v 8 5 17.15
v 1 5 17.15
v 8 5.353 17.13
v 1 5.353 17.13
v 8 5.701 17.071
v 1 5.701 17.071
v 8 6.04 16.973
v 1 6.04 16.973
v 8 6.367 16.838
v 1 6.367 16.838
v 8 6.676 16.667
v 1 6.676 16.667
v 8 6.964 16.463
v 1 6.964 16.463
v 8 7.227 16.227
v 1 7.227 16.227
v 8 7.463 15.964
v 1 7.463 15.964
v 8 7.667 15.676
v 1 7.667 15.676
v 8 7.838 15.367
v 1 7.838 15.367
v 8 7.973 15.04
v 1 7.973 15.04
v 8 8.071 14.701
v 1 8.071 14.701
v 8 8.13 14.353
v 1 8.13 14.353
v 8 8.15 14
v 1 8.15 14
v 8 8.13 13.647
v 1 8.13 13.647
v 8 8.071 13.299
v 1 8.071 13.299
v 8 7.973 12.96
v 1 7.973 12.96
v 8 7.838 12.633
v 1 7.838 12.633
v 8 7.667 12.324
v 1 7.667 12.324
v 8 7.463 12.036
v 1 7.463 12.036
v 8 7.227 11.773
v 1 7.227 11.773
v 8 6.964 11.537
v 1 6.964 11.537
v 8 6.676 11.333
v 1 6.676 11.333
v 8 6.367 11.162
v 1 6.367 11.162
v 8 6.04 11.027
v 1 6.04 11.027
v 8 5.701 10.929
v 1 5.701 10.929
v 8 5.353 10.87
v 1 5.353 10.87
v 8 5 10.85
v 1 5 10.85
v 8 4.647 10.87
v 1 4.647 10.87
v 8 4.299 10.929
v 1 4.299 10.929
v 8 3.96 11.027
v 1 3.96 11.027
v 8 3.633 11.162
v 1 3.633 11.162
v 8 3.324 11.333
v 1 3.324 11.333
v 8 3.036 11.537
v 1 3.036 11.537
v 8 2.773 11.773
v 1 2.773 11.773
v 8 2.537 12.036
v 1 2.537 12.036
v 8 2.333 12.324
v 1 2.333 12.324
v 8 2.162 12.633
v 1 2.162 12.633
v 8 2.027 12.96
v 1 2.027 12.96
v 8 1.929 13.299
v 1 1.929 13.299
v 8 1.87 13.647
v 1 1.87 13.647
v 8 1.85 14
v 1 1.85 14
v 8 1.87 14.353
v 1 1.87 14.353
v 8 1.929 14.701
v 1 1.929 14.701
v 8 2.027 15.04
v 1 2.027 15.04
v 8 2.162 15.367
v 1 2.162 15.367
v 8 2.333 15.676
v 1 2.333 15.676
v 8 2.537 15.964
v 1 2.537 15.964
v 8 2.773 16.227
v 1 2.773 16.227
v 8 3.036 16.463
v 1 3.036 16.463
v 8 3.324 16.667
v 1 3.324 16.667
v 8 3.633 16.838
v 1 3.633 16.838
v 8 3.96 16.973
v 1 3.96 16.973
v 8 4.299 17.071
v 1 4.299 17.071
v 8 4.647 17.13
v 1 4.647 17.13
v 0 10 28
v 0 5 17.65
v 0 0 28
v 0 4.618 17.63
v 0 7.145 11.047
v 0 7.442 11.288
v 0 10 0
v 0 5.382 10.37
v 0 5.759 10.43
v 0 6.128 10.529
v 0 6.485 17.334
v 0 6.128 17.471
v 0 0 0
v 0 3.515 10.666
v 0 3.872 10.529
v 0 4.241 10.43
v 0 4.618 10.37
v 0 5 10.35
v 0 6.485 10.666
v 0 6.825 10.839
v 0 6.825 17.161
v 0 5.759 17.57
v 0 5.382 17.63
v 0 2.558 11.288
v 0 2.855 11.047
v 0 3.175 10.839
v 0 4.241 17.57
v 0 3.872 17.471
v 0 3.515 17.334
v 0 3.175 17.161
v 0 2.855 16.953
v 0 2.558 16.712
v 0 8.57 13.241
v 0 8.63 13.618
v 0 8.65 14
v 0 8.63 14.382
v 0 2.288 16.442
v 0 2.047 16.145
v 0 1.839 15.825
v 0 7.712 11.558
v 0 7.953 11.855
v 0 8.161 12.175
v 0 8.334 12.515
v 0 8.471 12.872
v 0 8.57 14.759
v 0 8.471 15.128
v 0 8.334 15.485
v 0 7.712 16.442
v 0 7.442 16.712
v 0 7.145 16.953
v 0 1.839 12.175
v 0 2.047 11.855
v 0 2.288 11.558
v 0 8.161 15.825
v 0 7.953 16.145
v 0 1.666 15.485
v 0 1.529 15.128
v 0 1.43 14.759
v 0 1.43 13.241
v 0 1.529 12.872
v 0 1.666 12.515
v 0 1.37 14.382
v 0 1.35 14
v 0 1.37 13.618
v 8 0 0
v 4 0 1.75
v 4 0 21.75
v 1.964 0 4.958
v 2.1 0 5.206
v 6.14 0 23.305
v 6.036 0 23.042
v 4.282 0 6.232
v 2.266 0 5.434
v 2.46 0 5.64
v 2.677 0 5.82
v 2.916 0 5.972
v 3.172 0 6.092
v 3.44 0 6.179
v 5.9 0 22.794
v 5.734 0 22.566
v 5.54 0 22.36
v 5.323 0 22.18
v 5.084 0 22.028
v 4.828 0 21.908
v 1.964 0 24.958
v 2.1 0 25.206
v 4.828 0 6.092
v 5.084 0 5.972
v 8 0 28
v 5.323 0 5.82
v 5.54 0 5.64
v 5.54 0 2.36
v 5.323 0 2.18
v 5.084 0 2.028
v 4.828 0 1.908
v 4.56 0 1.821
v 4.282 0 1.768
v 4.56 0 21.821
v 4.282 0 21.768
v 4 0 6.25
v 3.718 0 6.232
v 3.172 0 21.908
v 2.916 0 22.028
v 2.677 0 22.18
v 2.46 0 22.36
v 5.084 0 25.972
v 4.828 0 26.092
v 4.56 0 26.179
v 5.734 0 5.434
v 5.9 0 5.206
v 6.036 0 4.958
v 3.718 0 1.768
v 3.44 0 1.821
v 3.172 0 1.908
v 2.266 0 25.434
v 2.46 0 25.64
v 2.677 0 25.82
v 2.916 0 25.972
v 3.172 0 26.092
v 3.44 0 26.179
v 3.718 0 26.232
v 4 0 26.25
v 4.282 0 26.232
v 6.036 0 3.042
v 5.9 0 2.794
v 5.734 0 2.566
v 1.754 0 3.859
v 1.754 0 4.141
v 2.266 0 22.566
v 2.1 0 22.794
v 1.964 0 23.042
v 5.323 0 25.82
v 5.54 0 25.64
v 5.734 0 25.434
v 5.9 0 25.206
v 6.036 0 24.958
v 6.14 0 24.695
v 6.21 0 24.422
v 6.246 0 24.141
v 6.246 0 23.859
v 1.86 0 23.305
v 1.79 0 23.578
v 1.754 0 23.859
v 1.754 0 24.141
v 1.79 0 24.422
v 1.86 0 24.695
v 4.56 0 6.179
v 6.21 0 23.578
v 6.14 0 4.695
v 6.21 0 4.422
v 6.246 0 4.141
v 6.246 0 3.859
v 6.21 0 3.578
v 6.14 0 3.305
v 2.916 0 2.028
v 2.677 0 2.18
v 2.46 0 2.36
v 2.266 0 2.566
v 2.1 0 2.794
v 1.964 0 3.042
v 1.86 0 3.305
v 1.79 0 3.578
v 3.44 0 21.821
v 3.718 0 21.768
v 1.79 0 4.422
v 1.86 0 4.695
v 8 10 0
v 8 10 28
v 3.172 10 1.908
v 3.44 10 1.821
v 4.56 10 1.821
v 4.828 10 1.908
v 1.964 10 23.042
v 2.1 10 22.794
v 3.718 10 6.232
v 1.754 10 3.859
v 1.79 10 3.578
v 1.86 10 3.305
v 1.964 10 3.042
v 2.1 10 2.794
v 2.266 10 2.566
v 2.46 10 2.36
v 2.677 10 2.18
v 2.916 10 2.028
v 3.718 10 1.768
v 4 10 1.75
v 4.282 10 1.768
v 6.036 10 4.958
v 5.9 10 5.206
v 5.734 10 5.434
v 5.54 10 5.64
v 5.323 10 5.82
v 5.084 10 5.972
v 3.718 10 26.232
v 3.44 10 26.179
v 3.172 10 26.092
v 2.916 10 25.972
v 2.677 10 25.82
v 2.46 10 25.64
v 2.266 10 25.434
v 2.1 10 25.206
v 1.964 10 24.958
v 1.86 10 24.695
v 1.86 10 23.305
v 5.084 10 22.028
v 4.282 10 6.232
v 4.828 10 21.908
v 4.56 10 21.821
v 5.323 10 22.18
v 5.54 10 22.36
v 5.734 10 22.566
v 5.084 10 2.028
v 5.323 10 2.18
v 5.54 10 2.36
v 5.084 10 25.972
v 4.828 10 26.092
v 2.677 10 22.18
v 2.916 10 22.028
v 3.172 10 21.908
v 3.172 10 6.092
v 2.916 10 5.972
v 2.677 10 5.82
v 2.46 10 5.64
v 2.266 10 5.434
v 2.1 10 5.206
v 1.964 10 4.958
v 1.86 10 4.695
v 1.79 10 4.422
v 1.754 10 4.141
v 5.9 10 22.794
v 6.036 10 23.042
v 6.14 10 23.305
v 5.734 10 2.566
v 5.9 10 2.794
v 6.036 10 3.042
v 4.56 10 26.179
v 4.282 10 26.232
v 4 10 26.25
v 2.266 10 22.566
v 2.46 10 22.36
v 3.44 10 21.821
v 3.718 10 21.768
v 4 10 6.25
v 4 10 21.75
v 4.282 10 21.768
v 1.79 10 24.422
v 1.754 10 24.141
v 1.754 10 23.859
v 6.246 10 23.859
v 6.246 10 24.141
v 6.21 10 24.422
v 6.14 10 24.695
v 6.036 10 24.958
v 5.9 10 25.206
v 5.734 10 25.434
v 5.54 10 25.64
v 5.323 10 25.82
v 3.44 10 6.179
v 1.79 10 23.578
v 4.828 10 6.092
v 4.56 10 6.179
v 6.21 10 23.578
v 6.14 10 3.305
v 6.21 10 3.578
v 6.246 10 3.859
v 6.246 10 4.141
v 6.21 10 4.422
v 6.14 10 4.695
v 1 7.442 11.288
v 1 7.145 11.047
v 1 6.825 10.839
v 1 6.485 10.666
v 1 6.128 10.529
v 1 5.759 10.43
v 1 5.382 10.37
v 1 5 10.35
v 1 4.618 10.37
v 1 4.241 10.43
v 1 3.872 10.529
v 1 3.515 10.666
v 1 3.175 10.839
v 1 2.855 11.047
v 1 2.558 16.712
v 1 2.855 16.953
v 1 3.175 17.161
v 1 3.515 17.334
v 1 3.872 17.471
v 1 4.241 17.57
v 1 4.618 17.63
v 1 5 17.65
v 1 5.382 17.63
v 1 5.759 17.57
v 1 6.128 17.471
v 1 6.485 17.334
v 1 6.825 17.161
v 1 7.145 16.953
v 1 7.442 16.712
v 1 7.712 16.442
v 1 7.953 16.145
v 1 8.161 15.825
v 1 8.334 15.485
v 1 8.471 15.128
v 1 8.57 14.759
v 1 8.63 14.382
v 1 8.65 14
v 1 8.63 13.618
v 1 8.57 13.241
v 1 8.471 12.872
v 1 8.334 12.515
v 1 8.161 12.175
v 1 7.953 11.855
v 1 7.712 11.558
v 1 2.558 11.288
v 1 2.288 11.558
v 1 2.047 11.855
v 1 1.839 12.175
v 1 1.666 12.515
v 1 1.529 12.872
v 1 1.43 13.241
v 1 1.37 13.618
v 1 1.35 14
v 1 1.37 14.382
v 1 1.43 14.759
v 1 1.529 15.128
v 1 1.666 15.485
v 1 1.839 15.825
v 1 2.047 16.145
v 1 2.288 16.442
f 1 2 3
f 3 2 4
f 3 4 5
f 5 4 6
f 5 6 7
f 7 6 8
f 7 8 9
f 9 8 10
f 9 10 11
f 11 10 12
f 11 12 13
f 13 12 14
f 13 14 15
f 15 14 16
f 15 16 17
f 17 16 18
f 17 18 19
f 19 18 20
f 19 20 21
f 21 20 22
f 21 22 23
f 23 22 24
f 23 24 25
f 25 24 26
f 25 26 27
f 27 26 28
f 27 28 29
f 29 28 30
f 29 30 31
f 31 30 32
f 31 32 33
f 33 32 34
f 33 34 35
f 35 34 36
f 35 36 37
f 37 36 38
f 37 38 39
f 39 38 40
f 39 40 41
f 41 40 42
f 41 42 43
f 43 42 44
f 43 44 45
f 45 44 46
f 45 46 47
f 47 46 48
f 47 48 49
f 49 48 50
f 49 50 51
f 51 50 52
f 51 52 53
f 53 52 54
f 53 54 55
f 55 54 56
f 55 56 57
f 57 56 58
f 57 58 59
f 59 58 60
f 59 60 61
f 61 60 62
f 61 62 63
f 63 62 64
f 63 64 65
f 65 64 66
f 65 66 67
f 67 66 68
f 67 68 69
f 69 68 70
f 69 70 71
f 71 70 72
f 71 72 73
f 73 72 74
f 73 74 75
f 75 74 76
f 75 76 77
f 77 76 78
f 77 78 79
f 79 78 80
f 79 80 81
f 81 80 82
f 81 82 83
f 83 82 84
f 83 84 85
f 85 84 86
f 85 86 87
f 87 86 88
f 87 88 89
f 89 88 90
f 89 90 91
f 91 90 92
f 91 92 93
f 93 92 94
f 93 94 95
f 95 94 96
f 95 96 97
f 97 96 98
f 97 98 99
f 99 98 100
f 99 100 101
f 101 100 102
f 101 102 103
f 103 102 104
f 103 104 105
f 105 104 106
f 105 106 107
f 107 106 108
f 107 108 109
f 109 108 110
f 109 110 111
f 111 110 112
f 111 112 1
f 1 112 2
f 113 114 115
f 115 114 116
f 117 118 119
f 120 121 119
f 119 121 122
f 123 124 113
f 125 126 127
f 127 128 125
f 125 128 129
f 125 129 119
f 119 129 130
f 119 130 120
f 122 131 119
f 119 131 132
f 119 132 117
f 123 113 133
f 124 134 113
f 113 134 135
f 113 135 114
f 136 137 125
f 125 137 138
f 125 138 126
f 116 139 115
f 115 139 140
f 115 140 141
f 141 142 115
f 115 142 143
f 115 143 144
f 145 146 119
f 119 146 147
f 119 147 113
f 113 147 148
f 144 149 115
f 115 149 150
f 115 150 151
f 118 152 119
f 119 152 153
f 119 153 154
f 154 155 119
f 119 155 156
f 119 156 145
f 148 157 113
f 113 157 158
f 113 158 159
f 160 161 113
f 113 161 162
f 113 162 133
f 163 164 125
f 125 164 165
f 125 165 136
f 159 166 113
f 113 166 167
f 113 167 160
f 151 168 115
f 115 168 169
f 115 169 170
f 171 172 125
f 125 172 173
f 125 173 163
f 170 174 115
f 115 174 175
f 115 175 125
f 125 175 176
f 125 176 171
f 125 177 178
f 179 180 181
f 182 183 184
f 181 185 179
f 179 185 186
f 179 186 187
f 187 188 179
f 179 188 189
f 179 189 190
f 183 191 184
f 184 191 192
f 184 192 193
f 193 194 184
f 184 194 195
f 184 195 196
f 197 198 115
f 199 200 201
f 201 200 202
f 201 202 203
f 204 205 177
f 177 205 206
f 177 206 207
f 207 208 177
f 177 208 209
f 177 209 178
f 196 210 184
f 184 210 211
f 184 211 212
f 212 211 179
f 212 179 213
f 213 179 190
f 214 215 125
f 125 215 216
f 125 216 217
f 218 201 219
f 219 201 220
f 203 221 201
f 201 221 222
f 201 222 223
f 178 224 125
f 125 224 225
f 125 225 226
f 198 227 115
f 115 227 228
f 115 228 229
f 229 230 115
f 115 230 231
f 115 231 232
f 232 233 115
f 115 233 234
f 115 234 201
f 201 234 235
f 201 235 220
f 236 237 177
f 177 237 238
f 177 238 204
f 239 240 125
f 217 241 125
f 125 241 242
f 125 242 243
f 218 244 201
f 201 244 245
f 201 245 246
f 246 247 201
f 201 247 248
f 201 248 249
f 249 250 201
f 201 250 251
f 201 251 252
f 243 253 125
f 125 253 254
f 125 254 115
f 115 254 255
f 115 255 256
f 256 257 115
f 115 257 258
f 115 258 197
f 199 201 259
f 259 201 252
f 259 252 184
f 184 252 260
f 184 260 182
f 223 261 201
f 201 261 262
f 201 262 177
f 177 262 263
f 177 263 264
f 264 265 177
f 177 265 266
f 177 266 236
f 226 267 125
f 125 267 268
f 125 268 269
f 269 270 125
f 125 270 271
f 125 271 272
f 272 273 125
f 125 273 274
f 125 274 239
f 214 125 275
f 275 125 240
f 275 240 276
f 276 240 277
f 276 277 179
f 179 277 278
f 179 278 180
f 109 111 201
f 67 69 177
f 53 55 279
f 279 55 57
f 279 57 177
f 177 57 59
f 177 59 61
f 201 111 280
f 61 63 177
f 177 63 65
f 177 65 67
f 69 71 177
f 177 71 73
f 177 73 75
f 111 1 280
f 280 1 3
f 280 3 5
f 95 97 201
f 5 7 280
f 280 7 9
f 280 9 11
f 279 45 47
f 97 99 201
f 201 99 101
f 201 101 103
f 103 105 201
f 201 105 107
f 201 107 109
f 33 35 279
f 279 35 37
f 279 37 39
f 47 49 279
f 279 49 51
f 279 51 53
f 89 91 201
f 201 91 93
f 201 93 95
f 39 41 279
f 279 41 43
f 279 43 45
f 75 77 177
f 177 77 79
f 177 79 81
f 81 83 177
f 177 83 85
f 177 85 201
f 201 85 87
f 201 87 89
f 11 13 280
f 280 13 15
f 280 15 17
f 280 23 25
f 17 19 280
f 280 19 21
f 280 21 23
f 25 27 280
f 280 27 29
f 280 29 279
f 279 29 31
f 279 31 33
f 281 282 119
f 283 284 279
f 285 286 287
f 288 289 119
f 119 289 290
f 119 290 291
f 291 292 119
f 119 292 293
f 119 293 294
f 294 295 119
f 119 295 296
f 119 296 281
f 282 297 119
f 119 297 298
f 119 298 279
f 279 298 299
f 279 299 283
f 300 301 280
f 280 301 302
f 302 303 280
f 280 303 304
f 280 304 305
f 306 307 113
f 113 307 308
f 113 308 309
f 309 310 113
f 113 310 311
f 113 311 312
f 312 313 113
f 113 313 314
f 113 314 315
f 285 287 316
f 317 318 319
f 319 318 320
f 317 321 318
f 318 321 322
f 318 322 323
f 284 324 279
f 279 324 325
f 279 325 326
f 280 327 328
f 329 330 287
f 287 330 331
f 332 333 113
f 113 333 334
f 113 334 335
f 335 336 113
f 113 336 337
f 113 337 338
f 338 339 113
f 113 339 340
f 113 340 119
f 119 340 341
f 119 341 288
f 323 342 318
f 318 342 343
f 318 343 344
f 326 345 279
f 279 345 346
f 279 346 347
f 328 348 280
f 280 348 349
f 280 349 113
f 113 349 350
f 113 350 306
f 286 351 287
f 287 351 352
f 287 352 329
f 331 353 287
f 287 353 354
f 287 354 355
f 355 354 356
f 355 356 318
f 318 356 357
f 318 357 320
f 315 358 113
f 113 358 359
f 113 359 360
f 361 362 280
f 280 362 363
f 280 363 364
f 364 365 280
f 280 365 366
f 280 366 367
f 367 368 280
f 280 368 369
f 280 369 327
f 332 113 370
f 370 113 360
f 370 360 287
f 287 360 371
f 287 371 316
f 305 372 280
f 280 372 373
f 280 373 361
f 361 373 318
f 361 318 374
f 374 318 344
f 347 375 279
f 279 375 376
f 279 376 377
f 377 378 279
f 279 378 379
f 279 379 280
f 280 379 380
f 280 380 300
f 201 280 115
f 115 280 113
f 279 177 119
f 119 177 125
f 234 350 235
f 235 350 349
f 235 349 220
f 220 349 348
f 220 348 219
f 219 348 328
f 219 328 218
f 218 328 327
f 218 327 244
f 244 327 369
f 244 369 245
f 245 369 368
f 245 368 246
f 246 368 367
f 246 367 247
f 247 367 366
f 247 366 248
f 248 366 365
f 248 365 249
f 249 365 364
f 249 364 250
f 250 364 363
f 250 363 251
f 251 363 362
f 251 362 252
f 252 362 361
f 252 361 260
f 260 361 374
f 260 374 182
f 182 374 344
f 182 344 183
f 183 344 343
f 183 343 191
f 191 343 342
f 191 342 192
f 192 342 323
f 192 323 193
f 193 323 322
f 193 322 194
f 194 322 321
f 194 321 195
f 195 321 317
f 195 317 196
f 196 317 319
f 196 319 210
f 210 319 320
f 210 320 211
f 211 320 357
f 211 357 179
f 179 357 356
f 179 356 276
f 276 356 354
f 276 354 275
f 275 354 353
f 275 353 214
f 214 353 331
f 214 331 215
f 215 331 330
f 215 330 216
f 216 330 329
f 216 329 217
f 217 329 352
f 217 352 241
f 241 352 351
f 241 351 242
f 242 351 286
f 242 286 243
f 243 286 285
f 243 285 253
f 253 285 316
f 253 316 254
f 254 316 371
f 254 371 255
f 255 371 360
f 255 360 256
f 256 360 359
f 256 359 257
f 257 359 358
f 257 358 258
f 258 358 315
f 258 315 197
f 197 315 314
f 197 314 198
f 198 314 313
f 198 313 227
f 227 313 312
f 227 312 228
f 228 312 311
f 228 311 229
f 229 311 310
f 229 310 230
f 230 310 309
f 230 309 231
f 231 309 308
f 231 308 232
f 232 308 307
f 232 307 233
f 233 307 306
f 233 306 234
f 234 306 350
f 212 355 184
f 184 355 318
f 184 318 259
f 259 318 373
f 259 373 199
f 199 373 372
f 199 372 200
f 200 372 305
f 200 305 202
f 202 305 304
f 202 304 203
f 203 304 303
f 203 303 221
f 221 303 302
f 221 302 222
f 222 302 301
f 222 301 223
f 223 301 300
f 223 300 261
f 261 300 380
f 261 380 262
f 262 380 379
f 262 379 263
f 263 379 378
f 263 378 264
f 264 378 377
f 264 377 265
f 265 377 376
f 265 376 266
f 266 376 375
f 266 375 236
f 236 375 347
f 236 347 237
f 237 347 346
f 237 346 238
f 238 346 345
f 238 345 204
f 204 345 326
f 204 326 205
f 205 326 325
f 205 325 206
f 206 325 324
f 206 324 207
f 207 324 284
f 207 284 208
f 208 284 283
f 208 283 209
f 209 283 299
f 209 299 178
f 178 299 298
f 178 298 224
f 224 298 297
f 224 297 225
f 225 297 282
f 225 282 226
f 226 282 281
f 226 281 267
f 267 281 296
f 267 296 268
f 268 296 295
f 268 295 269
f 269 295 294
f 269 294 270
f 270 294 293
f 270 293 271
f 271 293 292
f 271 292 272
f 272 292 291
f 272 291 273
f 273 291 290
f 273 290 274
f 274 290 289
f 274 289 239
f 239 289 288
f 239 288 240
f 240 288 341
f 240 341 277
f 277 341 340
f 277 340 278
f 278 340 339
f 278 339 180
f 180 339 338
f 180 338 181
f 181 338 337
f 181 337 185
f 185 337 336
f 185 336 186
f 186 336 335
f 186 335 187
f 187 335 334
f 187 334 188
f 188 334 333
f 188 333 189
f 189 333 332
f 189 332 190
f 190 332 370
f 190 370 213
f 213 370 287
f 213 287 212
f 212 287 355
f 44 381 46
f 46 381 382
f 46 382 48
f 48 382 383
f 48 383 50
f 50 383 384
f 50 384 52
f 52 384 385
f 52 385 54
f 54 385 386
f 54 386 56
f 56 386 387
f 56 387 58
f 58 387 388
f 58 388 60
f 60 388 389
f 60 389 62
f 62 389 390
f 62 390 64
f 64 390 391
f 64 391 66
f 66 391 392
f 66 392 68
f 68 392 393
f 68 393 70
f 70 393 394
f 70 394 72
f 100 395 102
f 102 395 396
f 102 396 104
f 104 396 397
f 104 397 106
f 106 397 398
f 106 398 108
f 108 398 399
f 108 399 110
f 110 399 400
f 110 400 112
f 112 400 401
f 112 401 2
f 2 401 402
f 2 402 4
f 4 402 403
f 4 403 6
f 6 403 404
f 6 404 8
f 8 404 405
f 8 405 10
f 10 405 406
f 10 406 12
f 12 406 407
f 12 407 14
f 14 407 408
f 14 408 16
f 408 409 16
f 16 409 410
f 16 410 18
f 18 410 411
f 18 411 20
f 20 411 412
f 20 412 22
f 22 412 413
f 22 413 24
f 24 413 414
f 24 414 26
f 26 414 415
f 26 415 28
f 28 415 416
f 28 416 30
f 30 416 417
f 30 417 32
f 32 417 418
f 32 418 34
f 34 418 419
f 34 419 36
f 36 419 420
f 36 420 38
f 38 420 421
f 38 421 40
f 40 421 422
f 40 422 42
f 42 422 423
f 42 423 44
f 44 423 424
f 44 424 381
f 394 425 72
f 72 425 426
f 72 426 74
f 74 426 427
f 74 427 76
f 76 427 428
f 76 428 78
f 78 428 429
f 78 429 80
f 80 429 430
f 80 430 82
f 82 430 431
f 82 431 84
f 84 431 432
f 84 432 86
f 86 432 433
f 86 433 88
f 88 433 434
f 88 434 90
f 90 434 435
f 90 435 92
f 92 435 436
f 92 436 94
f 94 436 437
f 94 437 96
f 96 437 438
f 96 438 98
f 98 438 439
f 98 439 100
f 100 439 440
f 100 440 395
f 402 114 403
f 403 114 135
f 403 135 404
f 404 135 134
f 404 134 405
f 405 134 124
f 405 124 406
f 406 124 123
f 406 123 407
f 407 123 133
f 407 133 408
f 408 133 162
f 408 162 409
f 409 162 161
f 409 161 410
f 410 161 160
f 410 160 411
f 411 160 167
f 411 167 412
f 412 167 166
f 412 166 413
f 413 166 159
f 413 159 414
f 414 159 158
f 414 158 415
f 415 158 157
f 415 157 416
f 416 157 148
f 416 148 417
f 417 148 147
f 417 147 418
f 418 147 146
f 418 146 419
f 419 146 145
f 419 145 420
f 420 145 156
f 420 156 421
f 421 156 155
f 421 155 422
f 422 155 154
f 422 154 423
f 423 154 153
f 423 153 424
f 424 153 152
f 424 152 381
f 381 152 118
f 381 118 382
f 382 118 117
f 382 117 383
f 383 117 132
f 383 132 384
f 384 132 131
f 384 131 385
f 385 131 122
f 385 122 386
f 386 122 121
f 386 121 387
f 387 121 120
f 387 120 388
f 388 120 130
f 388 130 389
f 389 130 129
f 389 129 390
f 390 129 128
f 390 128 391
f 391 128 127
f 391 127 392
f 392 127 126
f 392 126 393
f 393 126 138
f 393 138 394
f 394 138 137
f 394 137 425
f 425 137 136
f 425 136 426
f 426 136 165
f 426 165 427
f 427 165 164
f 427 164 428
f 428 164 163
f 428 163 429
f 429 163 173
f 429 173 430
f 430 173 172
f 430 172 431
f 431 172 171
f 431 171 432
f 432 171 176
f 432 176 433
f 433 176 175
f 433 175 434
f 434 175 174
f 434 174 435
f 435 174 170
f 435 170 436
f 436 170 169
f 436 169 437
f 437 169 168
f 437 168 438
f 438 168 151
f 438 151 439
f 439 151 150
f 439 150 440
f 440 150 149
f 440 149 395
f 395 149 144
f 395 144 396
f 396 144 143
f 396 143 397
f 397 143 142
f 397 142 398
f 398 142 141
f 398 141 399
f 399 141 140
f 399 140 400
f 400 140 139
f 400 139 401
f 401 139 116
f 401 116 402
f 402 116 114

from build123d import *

# Parameters (mm, degrees)
ESQUISSE1_W                  = 8
ESQUISSE1_H                  = 10
BOSS_EXTRU_1_DEPTH           = 28
ESQUISSE2_R                  = 2.25
ENL_V_MAT_EXTRU_1_DEPTH      = 11
ESQUISSE3_R                  = 3.15
ENL_V_MAT_EXTRU_2_DEPTH      = 1
ENL_V_MAT_EXTRU_2_DEPTH_BACK = 9
ESQUISSE4_R                  = 3.65
ENL_V_MAT_EXTRU_3_DEPTH      = 1


with BuildPart() as part:
    # Esquisse1 → Boss.-Extru.1 (new body)
    with BuildSketch(Plane.XY):
        with Locations((4, 5)):
            Rectangle(ESQUISSE1_W, ESQUISSE1_H)
    extrude(amount=BOSS_EXTRU_1_DEPTH)

    # Esquisse2 → Enlèv. mat.-Extru.1 (cut, through all)
    with BuildSketch(Plane(origin=(0, 10, 0), x_dir=(1, 0, 0), z_dir=(0, 1, 0))):
        with Locations((4, -24)):
            Circle(ESQUISSE2_R)
        with Locations((4, -4)):
            Circle(ESQUISSE2_R)
    extrude(amount=-ENL_V_MAT_EXTRU_1_DEPTH, mode=Mode.SUBTRACT)

    # Esquisse3 → Enlèv. mat.-Extru.2 (cut, two sides)
    with BuildSketch(Plane.ZY) as enl_v_mat_extru_2_sk:
        with Locations((14, 5)):
            Circle(ESQUISSE3_R)
    extrude(amount=ENL_V_MAT_EXTRU_2_DEPTH, mode=Mode.SUBTRACT)
    extrude(enl_v_mat_extru_2_sk.sketch, amount=-ENL_V_MAT_EXTRU_2_DEPTH_BACK, mode=Mode.SUBTRACT)

    # Esquisse4 → Enlèv. mat.-Extru.3 (cut)
    with BuildSketch(Plane.ZY):
        with Locations((14, 5)):
            Circle(ESQUISSE4_R)
    extrude(amount=-ENL_V_MAT_EXTRU_3_DEPTH, mode=Mode.SUBTRACT)


solid = part.part
